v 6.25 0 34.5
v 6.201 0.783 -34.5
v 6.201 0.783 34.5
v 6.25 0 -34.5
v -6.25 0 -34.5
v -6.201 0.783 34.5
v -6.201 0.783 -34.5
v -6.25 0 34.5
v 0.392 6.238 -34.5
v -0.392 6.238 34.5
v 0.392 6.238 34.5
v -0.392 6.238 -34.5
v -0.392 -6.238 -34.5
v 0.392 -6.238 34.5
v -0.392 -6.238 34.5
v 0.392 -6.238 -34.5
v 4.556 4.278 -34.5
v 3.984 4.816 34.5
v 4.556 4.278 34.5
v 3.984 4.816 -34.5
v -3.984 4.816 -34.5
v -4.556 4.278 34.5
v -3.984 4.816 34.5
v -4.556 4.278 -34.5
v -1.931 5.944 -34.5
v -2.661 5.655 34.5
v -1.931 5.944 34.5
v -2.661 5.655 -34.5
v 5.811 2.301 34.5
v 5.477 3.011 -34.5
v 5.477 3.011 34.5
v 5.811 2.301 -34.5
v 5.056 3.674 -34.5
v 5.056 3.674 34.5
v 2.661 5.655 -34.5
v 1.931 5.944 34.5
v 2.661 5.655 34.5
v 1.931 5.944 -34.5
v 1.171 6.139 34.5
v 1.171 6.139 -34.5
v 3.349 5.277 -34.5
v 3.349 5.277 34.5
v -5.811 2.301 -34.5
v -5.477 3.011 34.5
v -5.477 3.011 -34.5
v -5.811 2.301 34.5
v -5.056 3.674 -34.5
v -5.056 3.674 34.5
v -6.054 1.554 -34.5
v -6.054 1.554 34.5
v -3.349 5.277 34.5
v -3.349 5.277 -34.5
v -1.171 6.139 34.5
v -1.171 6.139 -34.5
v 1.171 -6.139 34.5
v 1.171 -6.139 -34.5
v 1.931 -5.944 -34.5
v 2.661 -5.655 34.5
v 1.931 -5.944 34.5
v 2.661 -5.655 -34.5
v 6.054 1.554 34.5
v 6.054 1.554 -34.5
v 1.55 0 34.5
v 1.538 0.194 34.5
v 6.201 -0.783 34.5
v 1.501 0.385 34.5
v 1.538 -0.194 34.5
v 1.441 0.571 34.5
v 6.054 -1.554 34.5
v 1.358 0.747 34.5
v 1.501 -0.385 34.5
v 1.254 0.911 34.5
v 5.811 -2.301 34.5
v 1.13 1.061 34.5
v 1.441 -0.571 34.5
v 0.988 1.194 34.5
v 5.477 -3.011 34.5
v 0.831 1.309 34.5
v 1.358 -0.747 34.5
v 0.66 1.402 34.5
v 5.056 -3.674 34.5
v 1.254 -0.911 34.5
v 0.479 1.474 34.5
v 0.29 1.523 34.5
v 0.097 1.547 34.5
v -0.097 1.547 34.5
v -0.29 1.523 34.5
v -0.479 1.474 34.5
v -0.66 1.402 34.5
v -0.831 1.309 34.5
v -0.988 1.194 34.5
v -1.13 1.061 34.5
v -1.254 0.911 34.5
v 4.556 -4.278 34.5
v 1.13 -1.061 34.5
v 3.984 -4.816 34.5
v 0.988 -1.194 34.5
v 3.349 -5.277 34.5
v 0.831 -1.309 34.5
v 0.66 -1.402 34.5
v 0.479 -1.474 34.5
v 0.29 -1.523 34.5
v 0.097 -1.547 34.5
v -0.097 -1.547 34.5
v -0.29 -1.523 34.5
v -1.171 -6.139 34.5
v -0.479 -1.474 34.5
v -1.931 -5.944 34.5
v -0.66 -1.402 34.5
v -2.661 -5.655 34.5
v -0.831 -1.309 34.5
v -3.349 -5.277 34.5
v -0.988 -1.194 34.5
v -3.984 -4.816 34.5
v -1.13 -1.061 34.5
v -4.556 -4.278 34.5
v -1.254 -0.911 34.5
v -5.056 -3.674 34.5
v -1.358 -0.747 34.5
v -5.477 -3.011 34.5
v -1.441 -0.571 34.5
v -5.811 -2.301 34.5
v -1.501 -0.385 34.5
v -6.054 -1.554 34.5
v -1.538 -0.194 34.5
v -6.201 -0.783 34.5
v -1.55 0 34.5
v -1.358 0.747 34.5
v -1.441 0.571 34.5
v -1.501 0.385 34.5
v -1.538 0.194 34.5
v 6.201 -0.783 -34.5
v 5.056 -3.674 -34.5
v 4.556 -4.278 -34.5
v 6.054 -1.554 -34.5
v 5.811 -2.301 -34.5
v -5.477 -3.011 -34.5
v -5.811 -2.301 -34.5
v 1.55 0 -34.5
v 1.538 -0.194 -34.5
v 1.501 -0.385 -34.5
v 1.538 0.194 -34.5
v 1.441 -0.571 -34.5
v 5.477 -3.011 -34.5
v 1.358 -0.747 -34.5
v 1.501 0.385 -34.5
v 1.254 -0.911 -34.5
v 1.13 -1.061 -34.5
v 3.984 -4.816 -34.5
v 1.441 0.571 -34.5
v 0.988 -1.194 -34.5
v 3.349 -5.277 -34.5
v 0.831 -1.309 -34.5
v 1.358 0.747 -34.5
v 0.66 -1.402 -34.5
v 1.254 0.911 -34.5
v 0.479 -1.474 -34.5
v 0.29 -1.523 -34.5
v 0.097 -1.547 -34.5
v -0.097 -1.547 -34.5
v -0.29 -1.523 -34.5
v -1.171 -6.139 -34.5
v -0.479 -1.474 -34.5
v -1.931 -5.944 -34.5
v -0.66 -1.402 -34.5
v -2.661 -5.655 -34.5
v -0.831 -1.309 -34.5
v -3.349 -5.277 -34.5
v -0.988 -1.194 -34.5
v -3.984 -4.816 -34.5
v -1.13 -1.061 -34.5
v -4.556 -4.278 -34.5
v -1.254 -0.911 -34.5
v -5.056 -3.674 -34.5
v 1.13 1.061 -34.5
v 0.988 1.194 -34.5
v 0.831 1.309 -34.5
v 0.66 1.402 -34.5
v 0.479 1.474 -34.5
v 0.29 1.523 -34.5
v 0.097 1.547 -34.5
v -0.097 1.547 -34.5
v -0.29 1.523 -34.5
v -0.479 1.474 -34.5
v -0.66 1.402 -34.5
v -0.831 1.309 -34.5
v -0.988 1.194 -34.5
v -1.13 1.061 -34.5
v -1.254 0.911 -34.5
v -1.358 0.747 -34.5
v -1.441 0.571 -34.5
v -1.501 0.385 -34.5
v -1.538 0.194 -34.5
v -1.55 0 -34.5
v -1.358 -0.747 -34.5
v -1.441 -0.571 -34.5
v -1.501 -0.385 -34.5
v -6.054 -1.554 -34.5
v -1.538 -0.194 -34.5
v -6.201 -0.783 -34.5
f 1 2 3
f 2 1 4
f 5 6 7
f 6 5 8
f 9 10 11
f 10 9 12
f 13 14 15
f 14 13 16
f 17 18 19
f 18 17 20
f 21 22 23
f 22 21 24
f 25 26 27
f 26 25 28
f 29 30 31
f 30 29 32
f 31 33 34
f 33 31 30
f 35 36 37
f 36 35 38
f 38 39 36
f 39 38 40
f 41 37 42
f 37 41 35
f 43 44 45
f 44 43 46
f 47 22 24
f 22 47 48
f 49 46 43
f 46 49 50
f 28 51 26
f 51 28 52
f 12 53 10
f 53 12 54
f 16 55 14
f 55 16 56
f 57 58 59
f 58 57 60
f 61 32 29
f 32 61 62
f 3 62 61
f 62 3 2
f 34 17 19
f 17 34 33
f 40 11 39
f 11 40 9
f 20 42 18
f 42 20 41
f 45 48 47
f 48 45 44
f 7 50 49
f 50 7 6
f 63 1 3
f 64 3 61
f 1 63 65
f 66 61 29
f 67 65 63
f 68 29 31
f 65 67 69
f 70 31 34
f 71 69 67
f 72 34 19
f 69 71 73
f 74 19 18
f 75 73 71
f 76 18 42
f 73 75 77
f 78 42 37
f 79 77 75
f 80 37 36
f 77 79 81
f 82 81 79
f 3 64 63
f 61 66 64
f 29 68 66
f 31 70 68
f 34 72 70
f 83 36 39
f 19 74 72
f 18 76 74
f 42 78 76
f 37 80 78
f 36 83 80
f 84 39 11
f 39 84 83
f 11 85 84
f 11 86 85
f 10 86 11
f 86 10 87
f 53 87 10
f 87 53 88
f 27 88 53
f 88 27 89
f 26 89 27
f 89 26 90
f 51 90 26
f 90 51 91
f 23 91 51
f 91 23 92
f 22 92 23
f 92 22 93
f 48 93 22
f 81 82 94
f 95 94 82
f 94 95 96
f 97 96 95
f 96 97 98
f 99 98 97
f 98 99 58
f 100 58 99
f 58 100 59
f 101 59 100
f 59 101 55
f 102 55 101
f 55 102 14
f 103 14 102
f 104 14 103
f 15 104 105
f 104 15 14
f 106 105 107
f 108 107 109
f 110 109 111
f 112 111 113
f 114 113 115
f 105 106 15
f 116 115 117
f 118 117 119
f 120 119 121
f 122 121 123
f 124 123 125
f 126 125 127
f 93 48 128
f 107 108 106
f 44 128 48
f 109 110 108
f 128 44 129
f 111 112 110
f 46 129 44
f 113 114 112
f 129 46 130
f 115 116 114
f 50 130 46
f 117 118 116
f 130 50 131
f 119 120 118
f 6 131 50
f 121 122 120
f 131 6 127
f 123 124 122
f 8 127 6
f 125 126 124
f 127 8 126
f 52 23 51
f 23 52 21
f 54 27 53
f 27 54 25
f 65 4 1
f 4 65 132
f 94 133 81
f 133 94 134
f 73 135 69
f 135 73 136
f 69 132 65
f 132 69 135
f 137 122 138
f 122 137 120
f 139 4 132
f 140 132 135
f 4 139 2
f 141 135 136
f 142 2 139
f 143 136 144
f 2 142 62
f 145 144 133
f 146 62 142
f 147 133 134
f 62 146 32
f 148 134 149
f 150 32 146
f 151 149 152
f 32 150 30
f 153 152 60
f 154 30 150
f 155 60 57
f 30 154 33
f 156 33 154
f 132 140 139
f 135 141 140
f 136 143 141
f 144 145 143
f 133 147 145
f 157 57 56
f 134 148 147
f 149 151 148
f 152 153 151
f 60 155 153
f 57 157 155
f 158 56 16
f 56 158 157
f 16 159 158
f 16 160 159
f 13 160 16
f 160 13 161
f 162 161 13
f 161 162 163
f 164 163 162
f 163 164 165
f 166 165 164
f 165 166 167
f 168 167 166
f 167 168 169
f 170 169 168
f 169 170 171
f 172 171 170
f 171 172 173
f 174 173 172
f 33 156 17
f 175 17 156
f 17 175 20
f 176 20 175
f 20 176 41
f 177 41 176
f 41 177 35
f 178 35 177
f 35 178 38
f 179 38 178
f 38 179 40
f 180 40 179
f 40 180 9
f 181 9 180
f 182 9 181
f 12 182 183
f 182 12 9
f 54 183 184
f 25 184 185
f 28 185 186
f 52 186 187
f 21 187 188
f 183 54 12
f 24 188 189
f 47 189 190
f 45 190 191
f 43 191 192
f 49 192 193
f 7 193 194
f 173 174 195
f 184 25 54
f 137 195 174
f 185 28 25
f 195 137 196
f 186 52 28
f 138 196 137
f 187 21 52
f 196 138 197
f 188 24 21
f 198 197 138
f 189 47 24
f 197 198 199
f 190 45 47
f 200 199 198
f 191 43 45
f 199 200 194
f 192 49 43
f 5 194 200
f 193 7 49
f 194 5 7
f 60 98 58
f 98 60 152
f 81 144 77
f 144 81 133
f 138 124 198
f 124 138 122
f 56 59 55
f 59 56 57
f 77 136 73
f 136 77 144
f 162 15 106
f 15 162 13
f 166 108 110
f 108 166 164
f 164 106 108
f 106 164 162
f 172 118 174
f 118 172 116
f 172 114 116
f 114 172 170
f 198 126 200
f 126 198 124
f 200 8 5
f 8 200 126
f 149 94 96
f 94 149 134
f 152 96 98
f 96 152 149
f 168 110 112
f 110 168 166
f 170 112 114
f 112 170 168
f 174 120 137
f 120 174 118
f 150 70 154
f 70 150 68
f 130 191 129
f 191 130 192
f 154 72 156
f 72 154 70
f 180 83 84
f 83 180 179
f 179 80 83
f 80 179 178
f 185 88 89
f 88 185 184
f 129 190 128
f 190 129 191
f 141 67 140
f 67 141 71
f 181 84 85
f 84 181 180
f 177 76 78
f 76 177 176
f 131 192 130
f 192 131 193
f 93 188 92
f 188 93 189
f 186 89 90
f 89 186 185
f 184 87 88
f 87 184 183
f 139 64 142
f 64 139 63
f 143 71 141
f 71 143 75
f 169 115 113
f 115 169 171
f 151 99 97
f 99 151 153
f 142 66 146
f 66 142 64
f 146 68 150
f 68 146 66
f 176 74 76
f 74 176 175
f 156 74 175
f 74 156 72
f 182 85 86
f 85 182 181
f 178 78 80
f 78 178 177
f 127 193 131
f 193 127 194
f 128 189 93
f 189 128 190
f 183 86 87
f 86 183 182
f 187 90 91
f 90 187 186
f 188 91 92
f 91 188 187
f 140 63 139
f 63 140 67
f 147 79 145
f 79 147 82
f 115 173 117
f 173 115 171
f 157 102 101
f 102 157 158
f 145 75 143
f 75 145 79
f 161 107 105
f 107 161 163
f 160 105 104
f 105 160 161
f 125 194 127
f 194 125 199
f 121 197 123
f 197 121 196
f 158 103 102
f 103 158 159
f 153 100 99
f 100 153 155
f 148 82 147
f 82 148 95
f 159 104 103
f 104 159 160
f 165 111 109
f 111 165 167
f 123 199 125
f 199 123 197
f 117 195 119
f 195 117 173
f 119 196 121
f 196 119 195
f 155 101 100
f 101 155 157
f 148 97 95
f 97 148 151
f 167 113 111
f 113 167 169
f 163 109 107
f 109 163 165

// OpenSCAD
$fn = 50;


difference() {
	union() {
		translate(v = [0, 0, -34.5000000000]) {
			cylinder(h = 69, r = 6.2500000000);
		}
	}
	union() {
		translate(v = [0, 0, -100.0000000000]) {
			cylinder(h = 200, r = 1.5500000000);
		}
	}
}
